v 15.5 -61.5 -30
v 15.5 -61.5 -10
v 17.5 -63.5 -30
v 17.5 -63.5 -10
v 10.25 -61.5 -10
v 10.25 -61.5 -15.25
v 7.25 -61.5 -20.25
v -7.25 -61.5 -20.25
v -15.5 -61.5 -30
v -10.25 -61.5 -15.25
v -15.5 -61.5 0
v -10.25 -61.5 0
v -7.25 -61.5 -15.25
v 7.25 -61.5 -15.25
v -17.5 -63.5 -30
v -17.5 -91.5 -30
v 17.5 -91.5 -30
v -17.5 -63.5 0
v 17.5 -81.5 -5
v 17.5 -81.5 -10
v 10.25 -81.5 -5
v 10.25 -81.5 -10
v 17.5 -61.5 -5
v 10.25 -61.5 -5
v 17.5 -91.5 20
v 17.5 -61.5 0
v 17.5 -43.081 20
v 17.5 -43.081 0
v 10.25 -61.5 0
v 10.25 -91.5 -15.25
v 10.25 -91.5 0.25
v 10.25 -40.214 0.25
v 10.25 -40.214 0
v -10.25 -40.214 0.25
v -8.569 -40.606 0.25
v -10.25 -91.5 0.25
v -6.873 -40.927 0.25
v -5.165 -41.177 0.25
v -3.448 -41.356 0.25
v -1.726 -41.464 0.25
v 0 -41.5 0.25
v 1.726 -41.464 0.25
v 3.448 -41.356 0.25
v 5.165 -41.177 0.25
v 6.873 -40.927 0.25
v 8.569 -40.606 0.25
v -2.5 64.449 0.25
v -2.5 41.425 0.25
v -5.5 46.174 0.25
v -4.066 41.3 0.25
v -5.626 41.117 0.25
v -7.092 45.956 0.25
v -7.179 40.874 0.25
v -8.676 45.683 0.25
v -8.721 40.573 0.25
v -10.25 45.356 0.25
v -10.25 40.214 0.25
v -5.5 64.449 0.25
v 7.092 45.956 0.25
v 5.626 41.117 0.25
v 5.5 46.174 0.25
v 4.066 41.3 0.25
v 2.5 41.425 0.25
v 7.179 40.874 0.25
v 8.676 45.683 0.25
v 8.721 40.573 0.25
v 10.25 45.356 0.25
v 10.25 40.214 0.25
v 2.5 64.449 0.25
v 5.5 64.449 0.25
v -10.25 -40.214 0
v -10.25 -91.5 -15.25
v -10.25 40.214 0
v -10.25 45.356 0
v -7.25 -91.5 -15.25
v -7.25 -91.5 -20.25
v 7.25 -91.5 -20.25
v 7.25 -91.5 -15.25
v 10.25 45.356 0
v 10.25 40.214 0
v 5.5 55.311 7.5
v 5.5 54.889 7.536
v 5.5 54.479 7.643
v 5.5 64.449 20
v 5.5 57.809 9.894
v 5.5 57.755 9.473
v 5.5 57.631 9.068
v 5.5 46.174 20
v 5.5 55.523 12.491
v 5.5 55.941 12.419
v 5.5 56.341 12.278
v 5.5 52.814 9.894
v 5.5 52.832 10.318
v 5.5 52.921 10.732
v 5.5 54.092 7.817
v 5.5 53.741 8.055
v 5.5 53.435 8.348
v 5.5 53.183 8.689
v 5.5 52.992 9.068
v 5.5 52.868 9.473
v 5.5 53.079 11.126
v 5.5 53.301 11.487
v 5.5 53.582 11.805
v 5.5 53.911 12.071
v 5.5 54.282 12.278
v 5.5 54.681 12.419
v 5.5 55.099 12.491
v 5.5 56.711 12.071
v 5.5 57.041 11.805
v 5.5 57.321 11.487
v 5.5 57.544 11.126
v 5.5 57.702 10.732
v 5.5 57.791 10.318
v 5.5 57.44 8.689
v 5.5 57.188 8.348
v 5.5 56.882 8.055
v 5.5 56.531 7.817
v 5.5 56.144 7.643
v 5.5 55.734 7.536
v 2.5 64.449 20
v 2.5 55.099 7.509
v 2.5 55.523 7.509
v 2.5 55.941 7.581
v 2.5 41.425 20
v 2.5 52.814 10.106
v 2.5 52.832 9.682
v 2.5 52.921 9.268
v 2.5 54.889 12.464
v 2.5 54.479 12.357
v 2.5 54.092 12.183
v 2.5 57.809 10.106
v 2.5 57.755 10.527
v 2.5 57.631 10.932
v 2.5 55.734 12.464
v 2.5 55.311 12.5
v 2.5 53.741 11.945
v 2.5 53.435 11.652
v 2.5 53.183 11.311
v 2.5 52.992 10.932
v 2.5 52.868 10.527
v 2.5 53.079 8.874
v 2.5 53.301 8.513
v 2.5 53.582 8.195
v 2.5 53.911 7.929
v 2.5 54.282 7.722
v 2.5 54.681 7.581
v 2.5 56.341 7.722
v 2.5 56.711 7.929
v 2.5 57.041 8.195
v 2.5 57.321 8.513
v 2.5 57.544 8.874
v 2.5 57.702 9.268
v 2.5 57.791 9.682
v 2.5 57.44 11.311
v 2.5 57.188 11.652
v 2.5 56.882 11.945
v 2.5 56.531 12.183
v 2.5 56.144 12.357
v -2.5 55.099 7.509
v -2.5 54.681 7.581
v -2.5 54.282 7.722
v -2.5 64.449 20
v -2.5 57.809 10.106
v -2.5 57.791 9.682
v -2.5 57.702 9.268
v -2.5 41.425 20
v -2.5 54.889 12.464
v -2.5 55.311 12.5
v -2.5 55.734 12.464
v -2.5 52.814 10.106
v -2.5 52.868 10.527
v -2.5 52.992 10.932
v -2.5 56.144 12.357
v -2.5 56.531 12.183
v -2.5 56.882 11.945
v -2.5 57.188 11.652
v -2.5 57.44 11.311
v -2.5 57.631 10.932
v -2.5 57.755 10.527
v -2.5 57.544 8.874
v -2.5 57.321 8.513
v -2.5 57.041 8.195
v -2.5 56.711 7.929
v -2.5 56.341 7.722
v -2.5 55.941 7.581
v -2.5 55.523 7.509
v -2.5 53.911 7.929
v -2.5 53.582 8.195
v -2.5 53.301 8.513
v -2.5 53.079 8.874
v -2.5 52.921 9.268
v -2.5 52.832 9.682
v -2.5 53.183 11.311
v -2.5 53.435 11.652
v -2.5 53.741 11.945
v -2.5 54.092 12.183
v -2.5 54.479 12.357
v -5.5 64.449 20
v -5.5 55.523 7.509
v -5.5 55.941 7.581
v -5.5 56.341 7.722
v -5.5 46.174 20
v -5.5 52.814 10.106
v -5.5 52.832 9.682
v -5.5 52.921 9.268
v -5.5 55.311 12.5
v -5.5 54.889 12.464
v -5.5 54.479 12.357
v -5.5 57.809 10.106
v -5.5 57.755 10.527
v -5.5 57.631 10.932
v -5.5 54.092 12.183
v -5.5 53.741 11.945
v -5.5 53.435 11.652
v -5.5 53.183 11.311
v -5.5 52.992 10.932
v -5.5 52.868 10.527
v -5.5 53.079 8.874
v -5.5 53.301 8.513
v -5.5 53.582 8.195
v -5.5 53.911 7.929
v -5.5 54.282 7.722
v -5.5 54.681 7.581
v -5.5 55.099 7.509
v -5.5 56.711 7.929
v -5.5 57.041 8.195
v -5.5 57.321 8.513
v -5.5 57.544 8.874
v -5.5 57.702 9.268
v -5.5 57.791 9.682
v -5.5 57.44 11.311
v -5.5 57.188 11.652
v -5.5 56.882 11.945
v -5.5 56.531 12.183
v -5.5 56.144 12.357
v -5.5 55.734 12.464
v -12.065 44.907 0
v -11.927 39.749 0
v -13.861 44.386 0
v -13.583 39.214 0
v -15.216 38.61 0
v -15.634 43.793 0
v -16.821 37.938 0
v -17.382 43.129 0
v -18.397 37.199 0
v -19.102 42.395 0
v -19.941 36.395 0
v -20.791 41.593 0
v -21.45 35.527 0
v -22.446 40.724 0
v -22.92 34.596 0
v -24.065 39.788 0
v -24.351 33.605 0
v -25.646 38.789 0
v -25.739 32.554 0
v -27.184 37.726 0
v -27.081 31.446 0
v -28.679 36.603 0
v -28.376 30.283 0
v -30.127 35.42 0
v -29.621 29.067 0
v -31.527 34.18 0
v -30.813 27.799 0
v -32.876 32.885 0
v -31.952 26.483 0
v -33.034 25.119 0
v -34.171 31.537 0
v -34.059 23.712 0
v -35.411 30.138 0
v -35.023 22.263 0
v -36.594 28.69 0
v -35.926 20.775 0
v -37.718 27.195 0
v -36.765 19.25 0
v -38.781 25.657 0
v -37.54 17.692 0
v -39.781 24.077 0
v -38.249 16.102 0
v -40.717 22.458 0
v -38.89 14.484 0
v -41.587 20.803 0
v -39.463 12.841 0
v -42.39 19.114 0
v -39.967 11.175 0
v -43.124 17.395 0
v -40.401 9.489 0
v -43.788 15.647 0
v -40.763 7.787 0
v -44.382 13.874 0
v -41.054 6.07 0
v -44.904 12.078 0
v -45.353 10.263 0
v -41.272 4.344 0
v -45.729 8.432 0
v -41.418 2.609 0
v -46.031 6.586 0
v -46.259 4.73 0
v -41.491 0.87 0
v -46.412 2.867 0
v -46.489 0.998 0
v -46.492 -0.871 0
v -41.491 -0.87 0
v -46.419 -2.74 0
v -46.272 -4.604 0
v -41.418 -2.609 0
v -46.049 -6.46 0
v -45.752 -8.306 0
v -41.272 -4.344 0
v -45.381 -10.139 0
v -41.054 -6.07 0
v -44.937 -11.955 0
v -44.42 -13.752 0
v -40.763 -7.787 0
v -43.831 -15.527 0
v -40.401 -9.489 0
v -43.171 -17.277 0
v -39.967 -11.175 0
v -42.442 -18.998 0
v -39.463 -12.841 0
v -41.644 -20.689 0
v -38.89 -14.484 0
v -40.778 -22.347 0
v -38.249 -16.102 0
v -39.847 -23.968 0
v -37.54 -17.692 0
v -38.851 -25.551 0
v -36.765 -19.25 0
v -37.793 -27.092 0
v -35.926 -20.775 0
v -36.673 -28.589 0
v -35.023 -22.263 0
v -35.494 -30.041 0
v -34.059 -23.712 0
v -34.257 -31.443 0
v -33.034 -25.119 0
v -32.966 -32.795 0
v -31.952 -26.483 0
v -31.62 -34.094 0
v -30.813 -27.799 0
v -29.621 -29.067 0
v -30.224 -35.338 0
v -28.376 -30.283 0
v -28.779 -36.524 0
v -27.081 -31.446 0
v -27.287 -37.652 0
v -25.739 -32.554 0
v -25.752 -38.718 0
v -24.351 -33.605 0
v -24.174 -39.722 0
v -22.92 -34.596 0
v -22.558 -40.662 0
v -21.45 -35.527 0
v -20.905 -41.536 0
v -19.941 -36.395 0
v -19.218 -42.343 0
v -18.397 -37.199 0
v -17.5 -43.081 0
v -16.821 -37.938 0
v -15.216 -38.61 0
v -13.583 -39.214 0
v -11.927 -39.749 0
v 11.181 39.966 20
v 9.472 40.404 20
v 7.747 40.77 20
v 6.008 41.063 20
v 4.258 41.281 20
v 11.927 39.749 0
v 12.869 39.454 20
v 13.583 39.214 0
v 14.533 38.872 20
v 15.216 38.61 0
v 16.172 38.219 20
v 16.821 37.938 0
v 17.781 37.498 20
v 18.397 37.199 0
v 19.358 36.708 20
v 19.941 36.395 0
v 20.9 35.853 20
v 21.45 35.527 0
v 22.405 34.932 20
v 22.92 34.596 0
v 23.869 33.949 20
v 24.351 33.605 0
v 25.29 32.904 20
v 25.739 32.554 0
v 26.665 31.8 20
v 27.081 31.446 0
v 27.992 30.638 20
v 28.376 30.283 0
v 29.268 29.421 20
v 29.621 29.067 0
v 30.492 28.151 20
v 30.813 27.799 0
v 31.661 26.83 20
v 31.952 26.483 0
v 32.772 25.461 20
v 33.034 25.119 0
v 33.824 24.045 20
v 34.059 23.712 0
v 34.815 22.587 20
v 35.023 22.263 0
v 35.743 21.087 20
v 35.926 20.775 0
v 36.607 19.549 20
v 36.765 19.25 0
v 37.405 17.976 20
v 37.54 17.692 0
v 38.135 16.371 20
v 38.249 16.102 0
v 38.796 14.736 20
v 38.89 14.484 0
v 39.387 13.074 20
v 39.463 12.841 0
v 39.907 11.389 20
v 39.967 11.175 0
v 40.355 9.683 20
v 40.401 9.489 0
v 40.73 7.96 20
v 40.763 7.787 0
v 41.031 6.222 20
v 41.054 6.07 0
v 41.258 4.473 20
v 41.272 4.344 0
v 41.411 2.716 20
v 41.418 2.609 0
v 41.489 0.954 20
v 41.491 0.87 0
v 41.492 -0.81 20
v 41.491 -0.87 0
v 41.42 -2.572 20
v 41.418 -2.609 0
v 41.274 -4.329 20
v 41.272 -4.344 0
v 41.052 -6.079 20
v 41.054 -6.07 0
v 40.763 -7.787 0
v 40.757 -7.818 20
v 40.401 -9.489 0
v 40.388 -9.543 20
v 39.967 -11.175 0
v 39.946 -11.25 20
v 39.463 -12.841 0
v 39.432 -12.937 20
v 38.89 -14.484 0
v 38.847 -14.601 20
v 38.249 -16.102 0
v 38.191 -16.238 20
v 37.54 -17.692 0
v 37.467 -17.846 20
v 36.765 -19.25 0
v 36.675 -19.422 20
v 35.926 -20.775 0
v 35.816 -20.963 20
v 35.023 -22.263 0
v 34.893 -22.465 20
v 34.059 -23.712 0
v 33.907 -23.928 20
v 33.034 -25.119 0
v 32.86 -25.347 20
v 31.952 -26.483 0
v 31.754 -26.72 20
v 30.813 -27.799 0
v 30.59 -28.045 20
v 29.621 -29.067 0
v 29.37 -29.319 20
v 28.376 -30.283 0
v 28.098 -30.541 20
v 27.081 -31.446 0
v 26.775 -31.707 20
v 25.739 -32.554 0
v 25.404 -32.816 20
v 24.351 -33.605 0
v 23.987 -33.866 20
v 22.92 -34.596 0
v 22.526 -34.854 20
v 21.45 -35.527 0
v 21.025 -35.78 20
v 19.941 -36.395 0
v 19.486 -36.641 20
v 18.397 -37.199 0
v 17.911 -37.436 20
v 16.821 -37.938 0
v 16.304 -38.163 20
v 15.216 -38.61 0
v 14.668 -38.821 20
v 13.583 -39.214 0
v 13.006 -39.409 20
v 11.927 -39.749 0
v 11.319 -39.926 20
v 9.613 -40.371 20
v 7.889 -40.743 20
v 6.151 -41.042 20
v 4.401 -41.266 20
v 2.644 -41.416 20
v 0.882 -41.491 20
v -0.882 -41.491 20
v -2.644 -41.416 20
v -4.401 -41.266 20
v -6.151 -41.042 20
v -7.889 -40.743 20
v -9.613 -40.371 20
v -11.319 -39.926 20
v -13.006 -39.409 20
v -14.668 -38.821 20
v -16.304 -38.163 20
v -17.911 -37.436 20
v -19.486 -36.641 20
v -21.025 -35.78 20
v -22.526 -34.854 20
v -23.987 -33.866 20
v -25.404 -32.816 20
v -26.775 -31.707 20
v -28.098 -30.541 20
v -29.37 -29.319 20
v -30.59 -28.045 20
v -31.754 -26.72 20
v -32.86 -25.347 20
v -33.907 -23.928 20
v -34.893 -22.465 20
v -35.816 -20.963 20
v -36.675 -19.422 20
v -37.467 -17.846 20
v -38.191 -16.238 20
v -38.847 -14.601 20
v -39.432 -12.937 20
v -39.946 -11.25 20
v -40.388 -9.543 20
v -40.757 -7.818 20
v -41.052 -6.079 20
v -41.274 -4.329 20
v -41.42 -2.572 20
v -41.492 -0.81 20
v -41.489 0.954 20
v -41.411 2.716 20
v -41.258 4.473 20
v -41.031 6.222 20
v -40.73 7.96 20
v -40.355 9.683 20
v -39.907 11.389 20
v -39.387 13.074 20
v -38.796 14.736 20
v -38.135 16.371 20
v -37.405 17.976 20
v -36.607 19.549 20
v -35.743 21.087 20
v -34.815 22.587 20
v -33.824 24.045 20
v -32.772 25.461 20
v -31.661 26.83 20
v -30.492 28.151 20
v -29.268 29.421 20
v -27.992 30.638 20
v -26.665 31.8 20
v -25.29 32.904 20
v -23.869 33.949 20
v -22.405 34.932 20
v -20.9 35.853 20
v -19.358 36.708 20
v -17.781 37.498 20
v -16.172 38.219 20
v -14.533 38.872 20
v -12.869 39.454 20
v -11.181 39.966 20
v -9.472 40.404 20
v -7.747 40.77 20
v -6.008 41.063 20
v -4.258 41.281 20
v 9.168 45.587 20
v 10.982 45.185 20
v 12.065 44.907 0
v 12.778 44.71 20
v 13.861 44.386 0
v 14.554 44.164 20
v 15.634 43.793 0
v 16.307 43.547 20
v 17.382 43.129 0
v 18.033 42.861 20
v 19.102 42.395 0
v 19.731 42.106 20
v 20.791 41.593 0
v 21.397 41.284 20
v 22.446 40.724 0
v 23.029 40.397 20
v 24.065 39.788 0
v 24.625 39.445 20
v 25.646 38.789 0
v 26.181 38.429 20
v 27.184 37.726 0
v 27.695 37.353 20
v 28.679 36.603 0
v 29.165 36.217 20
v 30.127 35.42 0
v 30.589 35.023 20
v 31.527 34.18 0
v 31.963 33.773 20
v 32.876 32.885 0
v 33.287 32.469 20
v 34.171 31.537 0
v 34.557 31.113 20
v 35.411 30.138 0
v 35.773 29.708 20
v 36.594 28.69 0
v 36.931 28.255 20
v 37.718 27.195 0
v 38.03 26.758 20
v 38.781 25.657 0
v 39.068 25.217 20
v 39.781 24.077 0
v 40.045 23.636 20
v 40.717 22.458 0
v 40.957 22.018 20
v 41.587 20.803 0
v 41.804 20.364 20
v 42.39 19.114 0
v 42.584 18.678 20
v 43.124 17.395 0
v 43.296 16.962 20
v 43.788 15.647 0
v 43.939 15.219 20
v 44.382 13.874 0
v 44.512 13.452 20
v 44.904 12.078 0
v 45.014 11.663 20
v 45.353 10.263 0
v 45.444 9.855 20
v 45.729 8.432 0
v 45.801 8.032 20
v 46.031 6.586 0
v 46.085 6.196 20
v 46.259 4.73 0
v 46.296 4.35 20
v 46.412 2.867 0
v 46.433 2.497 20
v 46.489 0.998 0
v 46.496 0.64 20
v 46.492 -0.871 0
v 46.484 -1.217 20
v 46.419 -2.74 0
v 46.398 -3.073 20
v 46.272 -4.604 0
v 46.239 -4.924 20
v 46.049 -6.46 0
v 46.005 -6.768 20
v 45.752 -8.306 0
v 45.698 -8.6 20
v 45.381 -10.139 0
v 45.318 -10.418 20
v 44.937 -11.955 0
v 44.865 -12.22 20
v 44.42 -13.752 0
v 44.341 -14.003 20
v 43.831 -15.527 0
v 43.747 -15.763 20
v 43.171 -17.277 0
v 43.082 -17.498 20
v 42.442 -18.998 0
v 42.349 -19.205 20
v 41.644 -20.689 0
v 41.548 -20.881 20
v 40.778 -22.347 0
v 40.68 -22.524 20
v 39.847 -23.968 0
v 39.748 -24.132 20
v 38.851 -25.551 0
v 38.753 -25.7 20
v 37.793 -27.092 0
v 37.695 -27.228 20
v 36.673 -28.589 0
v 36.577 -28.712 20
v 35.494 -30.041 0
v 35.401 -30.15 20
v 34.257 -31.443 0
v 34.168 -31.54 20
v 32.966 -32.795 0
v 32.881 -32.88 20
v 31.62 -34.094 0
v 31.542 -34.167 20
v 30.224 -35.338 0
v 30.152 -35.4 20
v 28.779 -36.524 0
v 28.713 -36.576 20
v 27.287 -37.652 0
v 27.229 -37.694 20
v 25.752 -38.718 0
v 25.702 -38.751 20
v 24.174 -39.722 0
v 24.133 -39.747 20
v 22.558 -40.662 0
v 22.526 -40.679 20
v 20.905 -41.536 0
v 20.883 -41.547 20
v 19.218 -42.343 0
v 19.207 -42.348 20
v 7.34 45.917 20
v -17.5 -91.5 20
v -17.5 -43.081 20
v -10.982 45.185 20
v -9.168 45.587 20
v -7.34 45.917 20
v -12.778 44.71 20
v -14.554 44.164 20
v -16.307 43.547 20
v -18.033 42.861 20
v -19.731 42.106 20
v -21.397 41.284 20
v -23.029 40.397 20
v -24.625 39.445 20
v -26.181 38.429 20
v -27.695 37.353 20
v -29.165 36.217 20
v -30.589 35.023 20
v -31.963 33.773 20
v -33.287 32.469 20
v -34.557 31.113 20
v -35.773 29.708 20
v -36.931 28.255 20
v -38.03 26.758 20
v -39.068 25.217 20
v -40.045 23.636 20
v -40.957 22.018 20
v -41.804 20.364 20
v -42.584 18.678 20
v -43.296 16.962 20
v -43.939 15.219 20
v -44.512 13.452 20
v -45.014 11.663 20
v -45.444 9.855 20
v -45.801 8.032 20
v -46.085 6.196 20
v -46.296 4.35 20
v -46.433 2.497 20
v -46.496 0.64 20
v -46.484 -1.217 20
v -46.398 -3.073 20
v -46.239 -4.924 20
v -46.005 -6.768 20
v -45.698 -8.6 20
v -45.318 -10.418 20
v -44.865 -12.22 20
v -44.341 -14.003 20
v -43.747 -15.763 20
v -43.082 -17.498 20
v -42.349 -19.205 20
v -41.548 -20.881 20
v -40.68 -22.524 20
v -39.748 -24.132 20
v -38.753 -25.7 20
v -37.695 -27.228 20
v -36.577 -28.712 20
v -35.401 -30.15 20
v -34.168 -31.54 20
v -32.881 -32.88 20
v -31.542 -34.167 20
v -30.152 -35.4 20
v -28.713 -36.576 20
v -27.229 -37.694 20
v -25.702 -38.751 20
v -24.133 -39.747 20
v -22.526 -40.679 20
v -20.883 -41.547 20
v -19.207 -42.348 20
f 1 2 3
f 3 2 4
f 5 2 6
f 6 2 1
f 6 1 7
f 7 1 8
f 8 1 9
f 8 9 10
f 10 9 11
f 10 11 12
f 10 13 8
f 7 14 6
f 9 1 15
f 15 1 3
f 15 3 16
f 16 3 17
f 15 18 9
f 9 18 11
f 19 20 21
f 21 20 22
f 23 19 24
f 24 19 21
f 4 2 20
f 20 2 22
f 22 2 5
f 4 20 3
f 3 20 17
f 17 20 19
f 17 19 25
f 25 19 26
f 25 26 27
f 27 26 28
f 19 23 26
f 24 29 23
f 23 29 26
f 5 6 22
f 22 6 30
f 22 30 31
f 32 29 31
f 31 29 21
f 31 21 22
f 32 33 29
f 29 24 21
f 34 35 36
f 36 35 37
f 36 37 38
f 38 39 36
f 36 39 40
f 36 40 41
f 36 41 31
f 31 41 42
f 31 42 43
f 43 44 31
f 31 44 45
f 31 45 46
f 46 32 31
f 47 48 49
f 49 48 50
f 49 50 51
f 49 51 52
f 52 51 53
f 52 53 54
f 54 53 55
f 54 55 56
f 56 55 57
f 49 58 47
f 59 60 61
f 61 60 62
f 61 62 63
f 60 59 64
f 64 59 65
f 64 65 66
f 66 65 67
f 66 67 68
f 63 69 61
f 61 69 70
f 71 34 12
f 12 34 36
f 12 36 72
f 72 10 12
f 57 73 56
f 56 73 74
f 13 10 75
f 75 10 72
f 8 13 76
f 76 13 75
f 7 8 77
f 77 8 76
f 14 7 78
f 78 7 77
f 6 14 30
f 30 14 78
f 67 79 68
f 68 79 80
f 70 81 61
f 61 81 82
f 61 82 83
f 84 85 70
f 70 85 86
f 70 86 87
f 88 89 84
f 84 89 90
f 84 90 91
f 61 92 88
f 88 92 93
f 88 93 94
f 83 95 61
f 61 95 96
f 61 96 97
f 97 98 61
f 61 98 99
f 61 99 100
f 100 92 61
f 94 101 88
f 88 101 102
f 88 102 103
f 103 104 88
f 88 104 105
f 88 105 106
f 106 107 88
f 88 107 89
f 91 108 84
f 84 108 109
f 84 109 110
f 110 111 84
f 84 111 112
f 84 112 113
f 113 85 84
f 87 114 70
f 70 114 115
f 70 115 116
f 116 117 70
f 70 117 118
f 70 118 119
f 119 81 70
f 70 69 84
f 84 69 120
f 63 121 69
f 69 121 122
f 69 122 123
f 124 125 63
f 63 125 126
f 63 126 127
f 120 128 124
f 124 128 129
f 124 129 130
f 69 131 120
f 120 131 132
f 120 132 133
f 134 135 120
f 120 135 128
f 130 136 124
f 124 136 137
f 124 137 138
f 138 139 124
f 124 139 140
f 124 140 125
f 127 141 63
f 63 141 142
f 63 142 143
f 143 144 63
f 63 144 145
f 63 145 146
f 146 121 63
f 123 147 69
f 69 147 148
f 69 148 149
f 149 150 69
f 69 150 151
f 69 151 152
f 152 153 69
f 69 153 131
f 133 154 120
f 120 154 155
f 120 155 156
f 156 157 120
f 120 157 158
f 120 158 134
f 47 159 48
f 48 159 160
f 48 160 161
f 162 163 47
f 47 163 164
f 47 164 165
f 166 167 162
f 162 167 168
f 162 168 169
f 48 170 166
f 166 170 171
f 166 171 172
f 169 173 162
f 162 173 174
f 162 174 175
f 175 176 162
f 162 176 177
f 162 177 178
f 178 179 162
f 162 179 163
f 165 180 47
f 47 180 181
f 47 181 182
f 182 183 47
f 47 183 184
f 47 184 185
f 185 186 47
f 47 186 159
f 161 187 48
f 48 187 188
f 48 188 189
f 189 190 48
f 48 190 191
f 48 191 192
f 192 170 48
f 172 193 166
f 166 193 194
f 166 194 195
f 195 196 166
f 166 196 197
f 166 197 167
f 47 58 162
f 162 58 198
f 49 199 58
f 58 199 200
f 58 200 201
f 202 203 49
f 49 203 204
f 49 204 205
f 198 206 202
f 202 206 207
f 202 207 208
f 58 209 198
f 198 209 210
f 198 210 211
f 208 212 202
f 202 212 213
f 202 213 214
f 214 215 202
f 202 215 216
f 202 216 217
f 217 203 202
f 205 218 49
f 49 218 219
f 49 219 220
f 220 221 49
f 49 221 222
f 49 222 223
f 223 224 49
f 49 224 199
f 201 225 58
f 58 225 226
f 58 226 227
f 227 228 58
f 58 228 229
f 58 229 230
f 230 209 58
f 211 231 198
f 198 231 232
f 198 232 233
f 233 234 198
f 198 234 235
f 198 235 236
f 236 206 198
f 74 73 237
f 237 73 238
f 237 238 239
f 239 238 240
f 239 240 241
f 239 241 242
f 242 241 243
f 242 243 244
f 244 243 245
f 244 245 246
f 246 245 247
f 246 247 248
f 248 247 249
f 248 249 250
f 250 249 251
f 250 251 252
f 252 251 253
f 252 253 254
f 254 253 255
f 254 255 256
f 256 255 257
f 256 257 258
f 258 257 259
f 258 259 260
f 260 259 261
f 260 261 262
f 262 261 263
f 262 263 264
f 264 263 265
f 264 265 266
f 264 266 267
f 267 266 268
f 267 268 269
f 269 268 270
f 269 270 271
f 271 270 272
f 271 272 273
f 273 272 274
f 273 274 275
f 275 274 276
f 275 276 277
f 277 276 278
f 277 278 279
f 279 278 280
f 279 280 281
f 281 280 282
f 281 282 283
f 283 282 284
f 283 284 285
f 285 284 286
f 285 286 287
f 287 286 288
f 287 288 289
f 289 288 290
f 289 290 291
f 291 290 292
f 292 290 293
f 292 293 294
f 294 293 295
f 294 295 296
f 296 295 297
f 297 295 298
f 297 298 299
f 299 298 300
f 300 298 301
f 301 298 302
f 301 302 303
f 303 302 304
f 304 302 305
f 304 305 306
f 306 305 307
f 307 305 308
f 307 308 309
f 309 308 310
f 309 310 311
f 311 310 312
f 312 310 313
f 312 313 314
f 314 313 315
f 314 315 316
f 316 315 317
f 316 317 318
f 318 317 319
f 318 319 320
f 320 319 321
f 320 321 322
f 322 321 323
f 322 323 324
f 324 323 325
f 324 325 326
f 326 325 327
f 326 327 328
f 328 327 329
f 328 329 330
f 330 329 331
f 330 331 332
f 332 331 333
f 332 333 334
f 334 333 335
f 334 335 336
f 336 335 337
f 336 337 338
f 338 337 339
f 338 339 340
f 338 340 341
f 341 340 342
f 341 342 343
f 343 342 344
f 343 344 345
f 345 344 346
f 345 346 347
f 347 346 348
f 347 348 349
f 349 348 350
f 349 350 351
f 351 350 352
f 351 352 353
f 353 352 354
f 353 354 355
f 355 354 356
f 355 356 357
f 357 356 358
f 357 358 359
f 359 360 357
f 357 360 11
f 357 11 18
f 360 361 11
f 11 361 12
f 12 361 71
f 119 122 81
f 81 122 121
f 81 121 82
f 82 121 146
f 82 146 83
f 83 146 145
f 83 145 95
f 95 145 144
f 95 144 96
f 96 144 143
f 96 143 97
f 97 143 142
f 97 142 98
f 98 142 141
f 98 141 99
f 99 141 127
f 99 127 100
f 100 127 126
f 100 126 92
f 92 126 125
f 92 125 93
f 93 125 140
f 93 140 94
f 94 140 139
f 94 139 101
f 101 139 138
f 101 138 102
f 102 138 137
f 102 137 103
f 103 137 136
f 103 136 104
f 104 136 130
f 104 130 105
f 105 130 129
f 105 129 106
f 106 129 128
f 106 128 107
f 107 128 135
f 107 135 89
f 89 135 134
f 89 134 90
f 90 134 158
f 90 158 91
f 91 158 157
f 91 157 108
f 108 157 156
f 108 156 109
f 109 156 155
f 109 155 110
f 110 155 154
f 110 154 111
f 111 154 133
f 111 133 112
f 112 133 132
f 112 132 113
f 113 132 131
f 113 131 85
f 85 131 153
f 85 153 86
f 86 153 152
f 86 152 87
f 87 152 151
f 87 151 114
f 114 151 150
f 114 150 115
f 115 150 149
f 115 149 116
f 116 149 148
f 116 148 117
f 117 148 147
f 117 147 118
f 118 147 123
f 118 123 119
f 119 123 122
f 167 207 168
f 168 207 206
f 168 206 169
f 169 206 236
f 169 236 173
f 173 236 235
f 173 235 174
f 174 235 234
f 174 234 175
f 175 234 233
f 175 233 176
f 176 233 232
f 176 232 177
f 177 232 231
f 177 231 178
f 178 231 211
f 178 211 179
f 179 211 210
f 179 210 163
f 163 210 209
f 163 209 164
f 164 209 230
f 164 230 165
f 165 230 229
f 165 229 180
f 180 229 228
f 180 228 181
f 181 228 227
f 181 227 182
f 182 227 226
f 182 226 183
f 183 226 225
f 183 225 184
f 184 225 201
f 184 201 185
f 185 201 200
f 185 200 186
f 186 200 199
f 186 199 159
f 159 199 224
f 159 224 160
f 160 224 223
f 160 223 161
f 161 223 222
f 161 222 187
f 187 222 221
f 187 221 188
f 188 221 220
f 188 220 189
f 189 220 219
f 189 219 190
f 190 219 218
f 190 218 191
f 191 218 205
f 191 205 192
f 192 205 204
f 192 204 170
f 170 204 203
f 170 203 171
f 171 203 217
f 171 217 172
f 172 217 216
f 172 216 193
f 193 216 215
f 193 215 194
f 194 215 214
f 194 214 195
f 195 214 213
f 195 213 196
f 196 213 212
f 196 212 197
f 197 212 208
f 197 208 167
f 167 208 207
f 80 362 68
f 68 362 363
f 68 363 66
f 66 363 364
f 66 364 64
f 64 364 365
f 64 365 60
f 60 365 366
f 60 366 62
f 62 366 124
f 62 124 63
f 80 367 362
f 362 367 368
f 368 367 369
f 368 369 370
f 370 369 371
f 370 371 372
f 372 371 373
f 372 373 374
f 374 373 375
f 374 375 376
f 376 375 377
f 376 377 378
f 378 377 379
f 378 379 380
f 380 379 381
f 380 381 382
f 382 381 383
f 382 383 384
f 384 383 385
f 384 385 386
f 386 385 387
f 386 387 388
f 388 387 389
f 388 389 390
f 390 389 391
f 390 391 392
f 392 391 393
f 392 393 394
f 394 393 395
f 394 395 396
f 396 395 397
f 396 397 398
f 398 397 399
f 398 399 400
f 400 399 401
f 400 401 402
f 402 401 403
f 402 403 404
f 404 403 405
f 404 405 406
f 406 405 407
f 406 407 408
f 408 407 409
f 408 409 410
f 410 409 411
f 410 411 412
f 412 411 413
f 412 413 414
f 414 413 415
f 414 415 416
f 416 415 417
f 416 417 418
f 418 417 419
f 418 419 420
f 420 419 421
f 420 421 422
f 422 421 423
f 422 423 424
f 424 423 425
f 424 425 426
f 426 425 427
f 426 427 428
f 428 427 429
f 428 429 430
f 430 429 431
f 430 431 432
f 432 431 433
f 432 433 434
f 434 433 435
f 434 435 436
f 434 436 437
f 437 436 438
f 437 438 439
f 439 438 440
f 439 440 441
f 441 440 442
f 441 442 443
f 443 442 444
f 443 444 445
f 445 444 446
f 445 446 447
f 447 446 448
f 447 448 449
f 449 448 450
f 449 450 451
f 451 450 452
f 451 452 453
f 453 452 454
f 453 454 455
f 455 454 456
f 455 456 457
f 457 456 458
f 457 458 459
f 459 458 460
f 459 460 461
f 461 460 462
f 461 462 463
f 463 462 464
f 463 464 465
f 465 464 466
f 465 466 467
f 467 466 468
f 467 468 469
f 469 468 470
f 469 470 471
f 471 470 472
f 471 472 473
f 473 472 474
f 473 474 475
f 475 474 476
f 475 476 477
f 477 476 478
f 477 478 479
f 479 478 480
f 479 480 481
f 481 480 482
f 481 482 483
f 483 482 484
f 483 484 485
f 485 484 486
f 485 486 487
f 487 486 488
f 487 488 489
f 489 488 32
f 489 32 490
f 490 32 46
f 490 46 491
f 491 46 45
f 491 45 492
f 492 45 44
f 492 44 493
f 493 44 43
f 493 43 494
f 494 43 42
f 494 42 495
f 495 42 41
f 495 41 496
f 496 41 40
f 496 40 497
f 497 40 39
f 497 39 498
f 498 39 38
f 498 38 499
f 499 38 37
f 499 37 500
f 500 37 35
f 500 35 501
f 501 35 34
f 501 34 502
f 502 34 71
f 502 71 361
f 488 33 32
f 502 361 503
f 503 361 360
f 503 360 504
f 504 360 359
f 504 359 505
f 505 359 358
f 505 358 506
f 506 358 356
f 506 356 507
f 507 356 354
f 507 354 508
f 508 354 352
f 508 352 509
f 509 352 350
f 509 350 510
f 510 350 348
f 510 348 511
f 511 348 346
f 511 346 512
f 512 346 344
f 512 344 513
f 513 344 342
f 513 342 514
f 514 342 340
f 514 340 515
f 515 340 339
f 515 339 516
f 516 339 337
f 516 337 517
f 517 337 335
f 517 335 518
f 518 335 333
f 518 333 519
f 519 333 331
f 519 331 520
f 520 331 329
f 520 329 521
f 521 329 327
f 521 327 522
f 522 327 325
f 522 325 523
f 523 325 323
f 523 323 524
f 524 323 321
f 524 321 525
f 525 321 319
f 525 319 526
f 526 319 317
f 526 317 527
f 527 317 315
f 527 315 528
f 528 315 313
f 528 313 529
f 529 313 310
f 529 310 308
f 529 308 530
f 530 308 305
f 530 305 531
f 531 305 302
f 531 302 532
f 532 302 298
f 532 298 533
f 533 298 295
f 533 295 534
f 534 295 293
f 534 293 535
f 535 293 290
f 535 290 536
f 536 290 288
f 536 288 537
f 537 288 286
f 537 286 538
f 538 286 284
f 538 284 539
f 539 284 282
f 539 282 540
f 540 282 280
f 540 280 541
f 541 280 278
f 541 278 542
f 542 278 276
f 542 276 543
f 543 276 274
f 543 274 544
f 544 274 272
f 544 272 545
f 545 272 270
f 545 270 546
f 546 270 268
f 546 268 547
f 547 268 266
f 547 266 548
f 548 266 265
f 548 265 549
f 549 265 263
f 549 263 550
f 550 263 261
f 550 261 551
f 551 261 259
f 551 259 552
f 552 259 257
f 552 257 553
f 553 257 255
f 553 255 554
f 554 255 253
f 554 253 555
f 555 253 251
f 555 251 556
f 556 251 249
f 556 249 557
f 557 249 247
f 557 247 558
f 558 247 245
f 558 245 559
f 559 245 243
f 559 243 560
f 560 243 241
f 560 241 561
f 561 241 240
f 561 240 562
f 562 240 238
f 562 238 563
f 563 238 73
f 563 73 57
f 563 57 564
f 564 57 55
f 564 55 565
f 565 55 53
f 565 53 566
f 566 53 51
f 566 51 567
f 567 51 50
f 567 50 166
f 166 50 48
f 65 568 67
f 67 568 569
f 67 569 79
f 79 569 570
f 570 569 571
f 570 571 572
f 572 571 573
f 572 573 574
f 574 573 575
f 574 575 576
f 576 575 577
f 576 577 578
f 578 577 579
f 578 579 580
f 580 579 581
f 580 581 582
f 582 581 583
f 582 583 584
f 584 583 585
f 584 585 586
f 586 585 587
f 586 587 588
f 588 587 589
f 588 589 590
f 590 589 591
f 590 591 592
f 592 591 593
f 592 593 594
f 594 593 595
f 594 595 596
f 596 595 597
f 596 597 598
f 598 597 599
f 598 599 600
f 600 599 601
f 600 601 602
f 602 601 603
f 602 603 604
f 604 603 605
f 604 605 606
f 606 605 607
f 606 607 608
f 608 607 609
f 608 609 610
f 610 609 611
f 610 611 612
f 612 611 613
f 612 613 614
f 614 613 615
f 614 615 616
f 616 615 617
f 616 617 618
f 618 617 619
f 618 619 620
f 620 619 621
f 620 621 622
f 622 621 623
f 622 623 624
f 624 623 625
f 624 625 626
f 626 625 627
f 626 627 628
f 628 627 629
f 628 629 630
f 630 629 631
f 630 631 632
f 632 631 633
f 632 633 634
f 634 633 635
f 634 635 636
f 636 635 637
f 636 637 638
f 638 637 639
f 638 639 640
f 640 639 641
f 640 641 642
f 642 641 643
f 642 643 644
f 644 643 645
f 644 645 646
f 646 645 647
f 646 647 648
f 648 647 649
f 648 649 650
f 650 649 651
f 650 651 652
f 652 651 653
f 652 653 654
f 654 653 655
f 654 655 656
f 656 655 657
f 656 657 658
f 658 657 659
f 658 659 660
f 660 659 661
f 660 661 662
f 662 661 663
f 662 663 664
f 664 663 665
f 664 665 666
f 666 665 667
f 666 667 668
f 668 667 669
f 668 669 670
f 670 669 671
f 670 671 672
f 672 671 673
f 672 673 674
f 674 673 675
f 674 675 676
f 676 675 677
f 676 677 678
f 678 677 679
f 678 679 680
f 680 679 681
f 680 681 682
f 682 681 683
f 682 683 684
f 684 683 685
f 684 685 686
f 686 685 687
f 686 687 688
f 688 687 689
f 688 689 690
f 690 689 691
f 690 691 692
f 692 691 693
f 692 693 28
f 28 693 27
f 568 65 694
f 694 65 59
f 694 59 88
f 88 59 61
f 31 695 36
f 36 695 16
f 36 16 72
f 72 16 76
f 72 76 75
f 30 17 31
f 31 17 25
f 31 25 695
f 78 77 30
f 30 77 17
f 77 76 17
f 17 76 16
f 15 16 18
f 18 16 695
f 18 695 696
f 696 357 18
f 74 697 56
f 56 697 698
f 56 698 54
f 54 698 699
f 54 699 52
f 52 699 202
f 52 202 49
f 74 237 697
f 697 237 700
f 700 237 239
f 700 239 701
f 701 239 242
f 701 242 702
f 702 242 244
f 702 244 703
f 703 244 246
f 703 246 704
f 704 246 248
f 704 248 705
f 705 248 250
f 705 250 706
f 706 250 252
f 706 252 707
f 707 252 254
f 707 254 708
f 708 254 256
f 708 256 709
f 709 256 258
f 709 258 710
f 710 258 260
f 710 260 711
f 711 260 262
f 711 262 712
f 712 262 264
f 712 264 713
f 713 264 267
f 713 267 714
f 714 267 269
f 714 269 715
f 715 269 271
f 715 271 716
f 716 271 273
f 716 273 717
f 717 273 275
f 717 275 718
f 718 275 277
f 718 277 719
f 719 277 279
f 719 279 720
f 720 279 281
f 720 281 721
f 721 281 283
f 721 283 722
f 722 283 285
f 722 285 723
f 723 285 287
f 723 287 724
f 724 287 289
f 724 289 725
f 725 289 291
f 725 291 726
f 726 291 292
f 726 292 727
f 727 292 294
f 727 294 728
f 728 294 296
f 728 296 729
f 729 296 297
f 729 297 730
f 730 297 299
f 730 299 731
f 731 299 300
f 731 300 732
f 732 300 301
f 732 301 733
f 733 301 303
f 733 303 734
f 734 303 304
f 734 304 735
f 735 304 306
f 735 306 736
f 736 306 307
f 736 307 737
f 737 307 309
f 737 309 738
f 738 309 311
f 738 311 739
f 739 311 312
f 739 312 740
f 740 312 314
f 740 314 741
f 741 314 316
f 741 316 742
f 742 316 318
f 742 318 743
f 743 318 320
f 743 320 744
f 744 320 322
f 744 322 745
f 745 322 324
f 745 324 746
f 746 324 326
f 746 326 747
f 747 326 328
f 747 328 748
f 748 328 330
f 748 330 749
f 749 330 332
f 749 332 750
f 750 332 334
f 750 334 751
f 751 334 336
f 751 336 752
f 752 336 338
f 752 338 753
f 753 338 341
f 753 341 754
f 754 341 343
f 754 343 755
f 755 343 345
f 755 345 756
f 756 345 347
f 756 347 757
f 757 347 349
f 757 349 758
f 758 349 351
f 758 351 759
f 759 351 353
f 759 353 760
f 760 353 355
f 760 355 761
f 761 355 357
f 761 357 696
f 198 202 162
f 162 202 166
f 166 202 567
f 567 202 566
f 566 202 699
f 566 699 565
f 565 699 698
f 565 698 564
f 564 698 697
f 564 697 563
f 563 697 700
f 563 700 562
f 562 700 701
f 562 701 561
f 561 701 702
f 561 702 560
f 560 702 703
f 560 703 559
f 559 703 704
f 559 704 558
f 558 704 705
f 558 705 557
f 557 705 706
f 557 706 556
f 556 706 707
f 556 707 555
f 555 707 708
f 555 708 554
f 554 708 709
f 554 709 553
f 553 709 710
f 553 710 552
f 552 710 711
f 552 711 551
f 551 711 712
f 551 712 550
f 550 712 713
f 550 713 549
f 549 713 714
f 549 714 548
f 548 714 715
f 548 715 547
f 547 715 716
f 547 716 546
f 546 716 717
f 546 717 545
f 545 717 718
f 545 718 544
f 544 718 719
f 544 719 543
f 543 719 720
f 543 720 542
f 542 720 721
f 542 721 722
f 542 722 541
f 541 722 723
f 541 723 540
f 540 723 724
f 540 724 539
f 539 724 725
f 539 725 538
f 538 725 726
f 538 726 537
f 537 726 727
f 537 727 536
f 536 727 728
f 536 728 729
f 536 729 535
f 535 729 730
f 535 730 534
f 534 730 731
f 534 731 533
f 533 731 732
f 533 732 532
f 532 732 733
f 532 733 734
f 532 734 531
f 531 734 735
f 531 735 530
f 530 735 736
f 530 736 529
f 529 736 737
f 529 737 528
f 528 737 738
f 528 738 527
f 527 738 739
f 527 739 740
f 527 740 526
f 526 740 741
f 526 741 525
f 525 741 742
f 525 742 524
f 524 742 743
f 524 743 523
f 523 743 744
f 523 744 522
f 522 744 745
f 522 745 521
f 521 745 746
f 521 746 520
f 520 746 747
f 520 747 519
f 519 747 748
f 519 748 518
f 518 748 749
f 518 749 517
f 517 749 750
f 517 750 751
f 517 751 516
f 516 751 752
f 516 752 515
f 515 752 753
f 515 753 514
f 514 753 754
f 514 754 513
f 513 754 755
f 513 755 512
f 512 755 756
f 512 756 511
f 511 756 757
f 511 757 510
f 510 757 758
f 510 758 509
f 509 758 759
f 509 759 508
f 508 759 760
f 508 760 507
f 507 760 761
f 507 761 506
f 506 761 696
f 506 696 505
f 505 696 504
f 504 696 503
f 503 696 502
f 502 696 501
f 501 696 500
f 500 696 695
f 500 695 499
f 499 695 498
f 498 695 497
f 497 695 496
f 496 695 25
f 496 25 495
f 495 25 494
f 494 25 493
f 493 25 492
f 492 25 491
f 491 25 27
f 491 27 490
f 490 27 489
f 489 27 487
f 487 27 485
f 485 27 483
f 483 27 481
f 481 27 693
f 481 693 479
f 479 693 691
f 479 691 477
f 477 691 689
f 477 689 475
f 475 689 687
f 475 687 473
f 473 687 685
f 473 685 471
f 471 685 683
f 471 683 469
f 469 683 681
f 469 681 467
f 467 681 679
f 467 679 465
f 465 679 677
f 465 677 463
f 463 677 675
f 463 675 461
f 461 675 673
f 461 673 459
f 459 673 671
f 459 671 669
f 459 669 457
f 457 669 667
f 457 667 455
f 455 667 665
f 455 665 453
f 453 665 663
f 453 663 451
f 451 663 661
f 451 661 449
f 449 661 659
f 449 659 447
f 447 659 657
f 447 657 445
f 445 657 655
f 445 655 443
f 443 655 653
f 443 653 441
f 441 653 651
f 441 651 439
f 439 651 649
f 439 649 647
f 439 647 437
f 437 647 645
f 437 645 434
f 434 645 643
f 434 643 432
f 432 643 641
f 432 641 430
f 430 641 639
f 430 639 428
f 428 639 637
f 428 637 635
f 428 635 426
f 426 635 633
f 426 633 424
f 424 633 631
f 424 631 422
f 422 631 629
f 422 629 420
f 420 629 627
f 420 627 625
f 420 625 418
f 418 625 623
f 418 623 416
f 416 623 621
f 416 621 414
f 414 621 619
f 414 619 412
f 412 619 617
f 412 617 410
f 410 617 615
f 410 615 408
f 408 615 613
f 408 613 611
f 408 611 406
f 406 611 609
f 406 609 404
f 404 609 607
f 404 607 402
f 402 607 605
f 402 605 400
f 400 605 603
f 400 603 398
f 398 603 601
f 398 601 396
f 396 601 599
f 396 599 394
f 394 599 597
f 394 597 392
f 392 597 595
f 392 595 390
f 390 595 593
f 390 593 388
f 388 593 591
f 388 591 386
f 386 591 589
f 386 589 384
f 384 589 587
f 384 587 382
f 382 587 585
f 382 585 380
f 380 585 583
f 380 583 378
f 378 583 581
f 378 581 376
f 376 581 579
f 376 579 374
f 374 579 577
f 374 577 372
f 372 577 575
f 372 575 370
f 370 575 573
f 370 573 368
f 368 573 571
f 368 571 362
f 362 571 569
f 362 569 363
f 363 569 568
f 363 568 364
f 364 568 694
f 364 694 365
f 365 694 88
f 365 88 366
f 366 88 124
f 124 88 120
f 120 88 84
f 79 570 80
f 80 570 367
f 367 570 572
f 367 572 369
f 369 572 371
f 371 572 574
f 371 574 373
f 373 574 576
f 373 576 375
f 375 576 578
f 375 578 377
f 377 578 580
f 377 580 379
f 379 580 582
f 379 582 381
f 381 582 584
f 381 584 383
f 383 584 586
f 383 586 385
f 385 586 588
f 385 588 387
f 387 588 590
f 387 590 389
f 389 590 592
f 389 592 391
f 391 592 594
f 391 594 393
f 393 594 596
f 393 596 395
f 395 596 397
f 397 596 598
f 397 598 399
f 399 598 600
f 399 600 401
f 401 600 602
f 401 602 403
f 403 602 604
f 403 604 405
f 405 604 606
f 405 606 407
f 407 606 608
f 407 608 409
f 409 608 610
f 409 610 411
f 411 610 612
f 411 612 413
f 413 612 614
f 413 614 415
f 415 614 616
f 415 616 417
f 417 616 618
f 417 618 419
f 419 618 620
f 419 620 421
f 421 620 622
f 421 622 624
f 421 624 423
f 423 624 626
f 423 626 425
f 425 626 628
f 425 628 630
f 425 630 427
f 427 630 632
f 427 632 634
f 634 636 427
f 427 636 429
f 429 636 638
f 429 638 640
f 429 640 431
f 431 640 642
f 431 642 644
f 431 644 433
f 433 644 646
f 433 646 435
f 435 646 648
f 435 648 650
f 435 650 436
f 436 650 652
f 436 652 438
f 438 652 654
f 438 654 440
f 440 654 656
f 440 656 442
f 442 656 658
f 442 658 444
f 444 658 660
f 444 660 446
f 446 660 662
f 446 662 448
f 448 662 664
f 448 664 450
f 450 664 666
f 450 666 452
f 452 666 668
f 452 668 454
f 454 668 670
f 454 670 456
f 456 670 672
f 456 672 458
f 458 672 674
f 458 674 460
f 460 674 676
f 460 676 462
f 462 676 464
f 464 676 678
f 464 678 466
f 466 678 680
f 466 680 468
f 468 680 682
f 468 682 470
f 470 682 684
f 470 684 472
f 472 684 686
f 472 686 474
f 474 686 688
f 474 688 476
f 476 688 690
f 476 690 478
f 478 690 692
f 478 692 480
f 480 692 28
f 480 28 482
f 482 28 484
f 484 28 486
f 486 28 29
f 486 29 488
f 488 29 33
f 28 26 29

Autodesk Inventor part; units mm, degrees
ref_plane "YZ Plane" through (0, 0, 0) normal (1, 0, 0) x (0, 1, 0)
ref_plane "XZ Plane" through (0, 0, 0) normal (0, 1, 0) x (-1, 0, 0)
ref_plane "XY Plane" through (0, 0, 0) normal (0, 0, 1) x (1, 0, 0)
sketch "Sketch1" plane through (0, 0, 0) normal (0, 0, 1) x (1, 0, 0)
  arc A0 (-2.5, 41.4246) -> (2.5, 41.4246) centre (0, 0) ccw
  arc A1 (-5.5, 46.1736) -> (5.5, 46.1736) centre (0, 0) ccw
  line L0 (-2.5, 61.4493) -> (2.5, 61.4493)
  line L1 (2.5, 61.4493) -> (2.5, 41.4246)
  line L2 (-2.5, 41.4246) -> (-2.5, 61.4493)
  line L3 (5.5, 46.1736) -> (5.5, 64.4493)
  line L4 (-5.5, 64.4493) -> (-5.5, 46.1736)
  line L5 (-2.5, 61.4493) -> (-2.5, 64.4493)
  line L6 (2.5, 61.4493) -> (2.5, 64.4493)
  line L7 (5.5, 64.4493) -> (2.5, 64.4493)
  line L8 (-2.5, 64.4493) -> (-5.5, 64.4493)
  line L9 (-17.5, -41.5) -> (17.5, -41.5)
  line L10 (17.5, -41.5) -> (17.5, -91.5)
  line L11 (17.5, -91.5) -> (-17.5, -91.5)
  line L12 (-17.5, -91.5) -> (-17.5, -41.5)
  point P0 (0, 61.4493)
  point P1 (0, -91.5)
  point P2 (-17.5, -43.0813)
  point P3 (17.5, -43.0813)
  point P4 (16.5831, -25)
  point P5 (-16.5831, -25)
  point P6 (0, -41.5)
  dimension "d0" = 83
  dimension "d1" = 93
  dimension "d4" = 3
  dimension "d5" = 5
  dimension "d6" = 3
  dimension "d7" = 3
  dimension "d8" = 35
  dimension "d9" = 50
  dimension "d35" = 15.2757
extrude "Extrusion1" add sketch "Sketch1" along normal blind 20 contours A0 L9 L12 A1 L4 L8 L5 L2 | L9 L10 A1 L12 | A0 L1 L6 L7 L3 A1 L10 L9 | A1 L10 L11 L12
sketch "Sketch2" plane through (5.5, 46.1736, 0) normal (1, 0, 0) x (0, 0, -1)
  line L0 (-20, 0) -> (-20, 18.2757) projected
  line L1 (0, 18.2757) -> (-20, 18.2757) projected
  point P0 (0, -46.1736)
  point P1 (-10, 9.1378)
  point P2 (-20, 9.1378)
  point P3 (-10, 18.2757)
hole "Hole1" at (5.5, 55.3114, 10) direction (-1, 0, 0) diameter 5 end through all
sketch "Sketch3" plane through (0, 0, 0) normal (0, 0, -1) x (-1, 0, 0)
  arc A0 (-5.5, 46.1736) -> (-17.5, -43.0813) centre (0, 0) ccw projected
  line L0 (5.5, 64.4493) -> (5.5, 46.1736) projected
  line L1 (2.5, 64.4493) -> (5.5, 64.4493) projected
  line L2 (2.5, 41.4246) -> (2.5, 64.4493) projected
  arc A1 (-2.5, 41.4246) -> (2.5, 41.4246) centre (0, 0) ccw projected
  line L3 (-2.5, 64.4493) -> (-2.5, 41.4246) projected
  line L4 (-5.5, 64.4493) -> (-2.5, 64.4493) projected
  line L5 (-5.5, 46.1736) -> (-5.5, 64.4493) projected
  arc A2 (-5.5, 46.1736) -> (-17.5, -43.0813) centre (0, 0) ccw projected
  arc A3 (17.5, -43.0813) -> (5.5, 46.1736) centre (0, 0) ccw projected
  line L6 (-17.5, -58.6416) -> (17.5, -58.6416)
  arc A4 (17.5, -43.0813) -> (5.5, 46.1736) centre (0, 0) ccw projected
  line L7 (-17.5, -91.5) -> (-17.5, -43.0813) projected
  line L8 (17.5, -91.5) -> (-17.5, -91.5) projected
  line L9 (17.5, -43.0813) -> (17.5, -91.5) projected
  point P0 (16.5831, -25)
  point P1 (-16.5831, -25)
  point P2 (17.5, -58.6416)
  point P3 (-17.5, -58.6416)
  dimension "d36" = 32.8584
extrude "Extrusion2" add sketch "Sketch3" along normal blind 30 contours L6 L9 L8 L7
sketch "Sketch4" plane through (17.5, -91.5, 20) normal (1, 0, 0) x (0, 0, -1)
  line L0 (50, 32.8584) -> (20, 32.8584)
  line L1 (20, 32.8584) -> (20, 30)
  line L2 (20, 30) -> (50, 30)
  line L3 (50, 30) -> (50, 32.8584)
  line L4 (50, 0) -> (0, 0) projected
  line L5 (50, 32.8584) -> (50, 0) projected
  line L6 (20, 32.8584) -> (50, 32.8584) projected
  line L7 (20, 32.8584) -> (20, 48.4187) projected
  point P0 (20, 91.5)
  point P1 (20, 0)
  point P2 (20, 60)
  dimension "d22" = 30
extrude "Extrusion3" cut sketch "Sketch4" against normal through all
sketch "Sketch6" plane through (-17.5, -91.5, 20) normal (0, -1, 0) x (1, 0, 0)
  line L0 (27.5, -35) -> (24.5, -35)
  line L1 (24.5, -35) -> (24.5, -40)
  line L2 (24.5, -40) -> (10.5, -40)
  line L3 (10.5, -40) -> (10.5, -35)
  line L4 (10.5, -35) -> (7.5, -35)
  line L5 (7.5, -35) -> (7.5, -20)
  line L6 (7.5, -20) -> (27.5, -20)
  line L7 (27.5, -20) -> (27.5, -35)
  line L8 (27.75, -19.75) -> (7.25, -19.75)
  line L9 (7.25, -19.75) -> (7.25, -35.25)
  line L10 (7.25, -35.25) -> (10.25, -35.25)
  line L11 (10.25, -35.25) -> (10.25, -40.25)
  line L12 (10.25, -40.25) -> (24.75, -40.25)
  line L13 (24.75, -40.25) -> (24.75, -35.25)
  line L14 (24.75, -35.25) -> (27.75, -35.25)
  line L15 (27.75, -35.25) -> (27.75, -19.75)
  point P0 (17.5, -20)
  dimension "d28" = 0.25
extrude "Extrusion5" cut sketch "Sketch6" against normal through all contours L0 L1 L2 L3 L4 L5 L6 L7 | L15 L14 L13 L12 L11 L10 L9 L8
sketch "Sketch9" plane through (10.25, -91.5, -15.25) normal (-1, 0, 0) x (0, 0, 1)
  line L0 (10.25, 30) -> (5.25, 30)
  line L1 (5.25, 30) -> (5.25, 10)
  line L2 (5.25, 10) -> (10.25, 10)
  line L3 (10.25, 10) -> (10.25, 30)
  line L4 (0, 30) -> (15.25, 30) projected
  line L5 (15.5, 0) -> (0, 0) projected
  point P0 (15.25, 91.5)
  point P1 (7.75, 10)
  point P2 (7.75, 0)
  point P3 (15.5, 25)
  dimension "d31" = 5
  dimension "d32" = 20
extrude "Extrusion6" cut sketch "Sketch9" against normal through all
chamfer "Chamfer1" distance 2 angle 45 2 edges at (-17.5, -61.5, -15) (17.5, -61.5, -20)
properties part number "0008-10-055 Doking"
